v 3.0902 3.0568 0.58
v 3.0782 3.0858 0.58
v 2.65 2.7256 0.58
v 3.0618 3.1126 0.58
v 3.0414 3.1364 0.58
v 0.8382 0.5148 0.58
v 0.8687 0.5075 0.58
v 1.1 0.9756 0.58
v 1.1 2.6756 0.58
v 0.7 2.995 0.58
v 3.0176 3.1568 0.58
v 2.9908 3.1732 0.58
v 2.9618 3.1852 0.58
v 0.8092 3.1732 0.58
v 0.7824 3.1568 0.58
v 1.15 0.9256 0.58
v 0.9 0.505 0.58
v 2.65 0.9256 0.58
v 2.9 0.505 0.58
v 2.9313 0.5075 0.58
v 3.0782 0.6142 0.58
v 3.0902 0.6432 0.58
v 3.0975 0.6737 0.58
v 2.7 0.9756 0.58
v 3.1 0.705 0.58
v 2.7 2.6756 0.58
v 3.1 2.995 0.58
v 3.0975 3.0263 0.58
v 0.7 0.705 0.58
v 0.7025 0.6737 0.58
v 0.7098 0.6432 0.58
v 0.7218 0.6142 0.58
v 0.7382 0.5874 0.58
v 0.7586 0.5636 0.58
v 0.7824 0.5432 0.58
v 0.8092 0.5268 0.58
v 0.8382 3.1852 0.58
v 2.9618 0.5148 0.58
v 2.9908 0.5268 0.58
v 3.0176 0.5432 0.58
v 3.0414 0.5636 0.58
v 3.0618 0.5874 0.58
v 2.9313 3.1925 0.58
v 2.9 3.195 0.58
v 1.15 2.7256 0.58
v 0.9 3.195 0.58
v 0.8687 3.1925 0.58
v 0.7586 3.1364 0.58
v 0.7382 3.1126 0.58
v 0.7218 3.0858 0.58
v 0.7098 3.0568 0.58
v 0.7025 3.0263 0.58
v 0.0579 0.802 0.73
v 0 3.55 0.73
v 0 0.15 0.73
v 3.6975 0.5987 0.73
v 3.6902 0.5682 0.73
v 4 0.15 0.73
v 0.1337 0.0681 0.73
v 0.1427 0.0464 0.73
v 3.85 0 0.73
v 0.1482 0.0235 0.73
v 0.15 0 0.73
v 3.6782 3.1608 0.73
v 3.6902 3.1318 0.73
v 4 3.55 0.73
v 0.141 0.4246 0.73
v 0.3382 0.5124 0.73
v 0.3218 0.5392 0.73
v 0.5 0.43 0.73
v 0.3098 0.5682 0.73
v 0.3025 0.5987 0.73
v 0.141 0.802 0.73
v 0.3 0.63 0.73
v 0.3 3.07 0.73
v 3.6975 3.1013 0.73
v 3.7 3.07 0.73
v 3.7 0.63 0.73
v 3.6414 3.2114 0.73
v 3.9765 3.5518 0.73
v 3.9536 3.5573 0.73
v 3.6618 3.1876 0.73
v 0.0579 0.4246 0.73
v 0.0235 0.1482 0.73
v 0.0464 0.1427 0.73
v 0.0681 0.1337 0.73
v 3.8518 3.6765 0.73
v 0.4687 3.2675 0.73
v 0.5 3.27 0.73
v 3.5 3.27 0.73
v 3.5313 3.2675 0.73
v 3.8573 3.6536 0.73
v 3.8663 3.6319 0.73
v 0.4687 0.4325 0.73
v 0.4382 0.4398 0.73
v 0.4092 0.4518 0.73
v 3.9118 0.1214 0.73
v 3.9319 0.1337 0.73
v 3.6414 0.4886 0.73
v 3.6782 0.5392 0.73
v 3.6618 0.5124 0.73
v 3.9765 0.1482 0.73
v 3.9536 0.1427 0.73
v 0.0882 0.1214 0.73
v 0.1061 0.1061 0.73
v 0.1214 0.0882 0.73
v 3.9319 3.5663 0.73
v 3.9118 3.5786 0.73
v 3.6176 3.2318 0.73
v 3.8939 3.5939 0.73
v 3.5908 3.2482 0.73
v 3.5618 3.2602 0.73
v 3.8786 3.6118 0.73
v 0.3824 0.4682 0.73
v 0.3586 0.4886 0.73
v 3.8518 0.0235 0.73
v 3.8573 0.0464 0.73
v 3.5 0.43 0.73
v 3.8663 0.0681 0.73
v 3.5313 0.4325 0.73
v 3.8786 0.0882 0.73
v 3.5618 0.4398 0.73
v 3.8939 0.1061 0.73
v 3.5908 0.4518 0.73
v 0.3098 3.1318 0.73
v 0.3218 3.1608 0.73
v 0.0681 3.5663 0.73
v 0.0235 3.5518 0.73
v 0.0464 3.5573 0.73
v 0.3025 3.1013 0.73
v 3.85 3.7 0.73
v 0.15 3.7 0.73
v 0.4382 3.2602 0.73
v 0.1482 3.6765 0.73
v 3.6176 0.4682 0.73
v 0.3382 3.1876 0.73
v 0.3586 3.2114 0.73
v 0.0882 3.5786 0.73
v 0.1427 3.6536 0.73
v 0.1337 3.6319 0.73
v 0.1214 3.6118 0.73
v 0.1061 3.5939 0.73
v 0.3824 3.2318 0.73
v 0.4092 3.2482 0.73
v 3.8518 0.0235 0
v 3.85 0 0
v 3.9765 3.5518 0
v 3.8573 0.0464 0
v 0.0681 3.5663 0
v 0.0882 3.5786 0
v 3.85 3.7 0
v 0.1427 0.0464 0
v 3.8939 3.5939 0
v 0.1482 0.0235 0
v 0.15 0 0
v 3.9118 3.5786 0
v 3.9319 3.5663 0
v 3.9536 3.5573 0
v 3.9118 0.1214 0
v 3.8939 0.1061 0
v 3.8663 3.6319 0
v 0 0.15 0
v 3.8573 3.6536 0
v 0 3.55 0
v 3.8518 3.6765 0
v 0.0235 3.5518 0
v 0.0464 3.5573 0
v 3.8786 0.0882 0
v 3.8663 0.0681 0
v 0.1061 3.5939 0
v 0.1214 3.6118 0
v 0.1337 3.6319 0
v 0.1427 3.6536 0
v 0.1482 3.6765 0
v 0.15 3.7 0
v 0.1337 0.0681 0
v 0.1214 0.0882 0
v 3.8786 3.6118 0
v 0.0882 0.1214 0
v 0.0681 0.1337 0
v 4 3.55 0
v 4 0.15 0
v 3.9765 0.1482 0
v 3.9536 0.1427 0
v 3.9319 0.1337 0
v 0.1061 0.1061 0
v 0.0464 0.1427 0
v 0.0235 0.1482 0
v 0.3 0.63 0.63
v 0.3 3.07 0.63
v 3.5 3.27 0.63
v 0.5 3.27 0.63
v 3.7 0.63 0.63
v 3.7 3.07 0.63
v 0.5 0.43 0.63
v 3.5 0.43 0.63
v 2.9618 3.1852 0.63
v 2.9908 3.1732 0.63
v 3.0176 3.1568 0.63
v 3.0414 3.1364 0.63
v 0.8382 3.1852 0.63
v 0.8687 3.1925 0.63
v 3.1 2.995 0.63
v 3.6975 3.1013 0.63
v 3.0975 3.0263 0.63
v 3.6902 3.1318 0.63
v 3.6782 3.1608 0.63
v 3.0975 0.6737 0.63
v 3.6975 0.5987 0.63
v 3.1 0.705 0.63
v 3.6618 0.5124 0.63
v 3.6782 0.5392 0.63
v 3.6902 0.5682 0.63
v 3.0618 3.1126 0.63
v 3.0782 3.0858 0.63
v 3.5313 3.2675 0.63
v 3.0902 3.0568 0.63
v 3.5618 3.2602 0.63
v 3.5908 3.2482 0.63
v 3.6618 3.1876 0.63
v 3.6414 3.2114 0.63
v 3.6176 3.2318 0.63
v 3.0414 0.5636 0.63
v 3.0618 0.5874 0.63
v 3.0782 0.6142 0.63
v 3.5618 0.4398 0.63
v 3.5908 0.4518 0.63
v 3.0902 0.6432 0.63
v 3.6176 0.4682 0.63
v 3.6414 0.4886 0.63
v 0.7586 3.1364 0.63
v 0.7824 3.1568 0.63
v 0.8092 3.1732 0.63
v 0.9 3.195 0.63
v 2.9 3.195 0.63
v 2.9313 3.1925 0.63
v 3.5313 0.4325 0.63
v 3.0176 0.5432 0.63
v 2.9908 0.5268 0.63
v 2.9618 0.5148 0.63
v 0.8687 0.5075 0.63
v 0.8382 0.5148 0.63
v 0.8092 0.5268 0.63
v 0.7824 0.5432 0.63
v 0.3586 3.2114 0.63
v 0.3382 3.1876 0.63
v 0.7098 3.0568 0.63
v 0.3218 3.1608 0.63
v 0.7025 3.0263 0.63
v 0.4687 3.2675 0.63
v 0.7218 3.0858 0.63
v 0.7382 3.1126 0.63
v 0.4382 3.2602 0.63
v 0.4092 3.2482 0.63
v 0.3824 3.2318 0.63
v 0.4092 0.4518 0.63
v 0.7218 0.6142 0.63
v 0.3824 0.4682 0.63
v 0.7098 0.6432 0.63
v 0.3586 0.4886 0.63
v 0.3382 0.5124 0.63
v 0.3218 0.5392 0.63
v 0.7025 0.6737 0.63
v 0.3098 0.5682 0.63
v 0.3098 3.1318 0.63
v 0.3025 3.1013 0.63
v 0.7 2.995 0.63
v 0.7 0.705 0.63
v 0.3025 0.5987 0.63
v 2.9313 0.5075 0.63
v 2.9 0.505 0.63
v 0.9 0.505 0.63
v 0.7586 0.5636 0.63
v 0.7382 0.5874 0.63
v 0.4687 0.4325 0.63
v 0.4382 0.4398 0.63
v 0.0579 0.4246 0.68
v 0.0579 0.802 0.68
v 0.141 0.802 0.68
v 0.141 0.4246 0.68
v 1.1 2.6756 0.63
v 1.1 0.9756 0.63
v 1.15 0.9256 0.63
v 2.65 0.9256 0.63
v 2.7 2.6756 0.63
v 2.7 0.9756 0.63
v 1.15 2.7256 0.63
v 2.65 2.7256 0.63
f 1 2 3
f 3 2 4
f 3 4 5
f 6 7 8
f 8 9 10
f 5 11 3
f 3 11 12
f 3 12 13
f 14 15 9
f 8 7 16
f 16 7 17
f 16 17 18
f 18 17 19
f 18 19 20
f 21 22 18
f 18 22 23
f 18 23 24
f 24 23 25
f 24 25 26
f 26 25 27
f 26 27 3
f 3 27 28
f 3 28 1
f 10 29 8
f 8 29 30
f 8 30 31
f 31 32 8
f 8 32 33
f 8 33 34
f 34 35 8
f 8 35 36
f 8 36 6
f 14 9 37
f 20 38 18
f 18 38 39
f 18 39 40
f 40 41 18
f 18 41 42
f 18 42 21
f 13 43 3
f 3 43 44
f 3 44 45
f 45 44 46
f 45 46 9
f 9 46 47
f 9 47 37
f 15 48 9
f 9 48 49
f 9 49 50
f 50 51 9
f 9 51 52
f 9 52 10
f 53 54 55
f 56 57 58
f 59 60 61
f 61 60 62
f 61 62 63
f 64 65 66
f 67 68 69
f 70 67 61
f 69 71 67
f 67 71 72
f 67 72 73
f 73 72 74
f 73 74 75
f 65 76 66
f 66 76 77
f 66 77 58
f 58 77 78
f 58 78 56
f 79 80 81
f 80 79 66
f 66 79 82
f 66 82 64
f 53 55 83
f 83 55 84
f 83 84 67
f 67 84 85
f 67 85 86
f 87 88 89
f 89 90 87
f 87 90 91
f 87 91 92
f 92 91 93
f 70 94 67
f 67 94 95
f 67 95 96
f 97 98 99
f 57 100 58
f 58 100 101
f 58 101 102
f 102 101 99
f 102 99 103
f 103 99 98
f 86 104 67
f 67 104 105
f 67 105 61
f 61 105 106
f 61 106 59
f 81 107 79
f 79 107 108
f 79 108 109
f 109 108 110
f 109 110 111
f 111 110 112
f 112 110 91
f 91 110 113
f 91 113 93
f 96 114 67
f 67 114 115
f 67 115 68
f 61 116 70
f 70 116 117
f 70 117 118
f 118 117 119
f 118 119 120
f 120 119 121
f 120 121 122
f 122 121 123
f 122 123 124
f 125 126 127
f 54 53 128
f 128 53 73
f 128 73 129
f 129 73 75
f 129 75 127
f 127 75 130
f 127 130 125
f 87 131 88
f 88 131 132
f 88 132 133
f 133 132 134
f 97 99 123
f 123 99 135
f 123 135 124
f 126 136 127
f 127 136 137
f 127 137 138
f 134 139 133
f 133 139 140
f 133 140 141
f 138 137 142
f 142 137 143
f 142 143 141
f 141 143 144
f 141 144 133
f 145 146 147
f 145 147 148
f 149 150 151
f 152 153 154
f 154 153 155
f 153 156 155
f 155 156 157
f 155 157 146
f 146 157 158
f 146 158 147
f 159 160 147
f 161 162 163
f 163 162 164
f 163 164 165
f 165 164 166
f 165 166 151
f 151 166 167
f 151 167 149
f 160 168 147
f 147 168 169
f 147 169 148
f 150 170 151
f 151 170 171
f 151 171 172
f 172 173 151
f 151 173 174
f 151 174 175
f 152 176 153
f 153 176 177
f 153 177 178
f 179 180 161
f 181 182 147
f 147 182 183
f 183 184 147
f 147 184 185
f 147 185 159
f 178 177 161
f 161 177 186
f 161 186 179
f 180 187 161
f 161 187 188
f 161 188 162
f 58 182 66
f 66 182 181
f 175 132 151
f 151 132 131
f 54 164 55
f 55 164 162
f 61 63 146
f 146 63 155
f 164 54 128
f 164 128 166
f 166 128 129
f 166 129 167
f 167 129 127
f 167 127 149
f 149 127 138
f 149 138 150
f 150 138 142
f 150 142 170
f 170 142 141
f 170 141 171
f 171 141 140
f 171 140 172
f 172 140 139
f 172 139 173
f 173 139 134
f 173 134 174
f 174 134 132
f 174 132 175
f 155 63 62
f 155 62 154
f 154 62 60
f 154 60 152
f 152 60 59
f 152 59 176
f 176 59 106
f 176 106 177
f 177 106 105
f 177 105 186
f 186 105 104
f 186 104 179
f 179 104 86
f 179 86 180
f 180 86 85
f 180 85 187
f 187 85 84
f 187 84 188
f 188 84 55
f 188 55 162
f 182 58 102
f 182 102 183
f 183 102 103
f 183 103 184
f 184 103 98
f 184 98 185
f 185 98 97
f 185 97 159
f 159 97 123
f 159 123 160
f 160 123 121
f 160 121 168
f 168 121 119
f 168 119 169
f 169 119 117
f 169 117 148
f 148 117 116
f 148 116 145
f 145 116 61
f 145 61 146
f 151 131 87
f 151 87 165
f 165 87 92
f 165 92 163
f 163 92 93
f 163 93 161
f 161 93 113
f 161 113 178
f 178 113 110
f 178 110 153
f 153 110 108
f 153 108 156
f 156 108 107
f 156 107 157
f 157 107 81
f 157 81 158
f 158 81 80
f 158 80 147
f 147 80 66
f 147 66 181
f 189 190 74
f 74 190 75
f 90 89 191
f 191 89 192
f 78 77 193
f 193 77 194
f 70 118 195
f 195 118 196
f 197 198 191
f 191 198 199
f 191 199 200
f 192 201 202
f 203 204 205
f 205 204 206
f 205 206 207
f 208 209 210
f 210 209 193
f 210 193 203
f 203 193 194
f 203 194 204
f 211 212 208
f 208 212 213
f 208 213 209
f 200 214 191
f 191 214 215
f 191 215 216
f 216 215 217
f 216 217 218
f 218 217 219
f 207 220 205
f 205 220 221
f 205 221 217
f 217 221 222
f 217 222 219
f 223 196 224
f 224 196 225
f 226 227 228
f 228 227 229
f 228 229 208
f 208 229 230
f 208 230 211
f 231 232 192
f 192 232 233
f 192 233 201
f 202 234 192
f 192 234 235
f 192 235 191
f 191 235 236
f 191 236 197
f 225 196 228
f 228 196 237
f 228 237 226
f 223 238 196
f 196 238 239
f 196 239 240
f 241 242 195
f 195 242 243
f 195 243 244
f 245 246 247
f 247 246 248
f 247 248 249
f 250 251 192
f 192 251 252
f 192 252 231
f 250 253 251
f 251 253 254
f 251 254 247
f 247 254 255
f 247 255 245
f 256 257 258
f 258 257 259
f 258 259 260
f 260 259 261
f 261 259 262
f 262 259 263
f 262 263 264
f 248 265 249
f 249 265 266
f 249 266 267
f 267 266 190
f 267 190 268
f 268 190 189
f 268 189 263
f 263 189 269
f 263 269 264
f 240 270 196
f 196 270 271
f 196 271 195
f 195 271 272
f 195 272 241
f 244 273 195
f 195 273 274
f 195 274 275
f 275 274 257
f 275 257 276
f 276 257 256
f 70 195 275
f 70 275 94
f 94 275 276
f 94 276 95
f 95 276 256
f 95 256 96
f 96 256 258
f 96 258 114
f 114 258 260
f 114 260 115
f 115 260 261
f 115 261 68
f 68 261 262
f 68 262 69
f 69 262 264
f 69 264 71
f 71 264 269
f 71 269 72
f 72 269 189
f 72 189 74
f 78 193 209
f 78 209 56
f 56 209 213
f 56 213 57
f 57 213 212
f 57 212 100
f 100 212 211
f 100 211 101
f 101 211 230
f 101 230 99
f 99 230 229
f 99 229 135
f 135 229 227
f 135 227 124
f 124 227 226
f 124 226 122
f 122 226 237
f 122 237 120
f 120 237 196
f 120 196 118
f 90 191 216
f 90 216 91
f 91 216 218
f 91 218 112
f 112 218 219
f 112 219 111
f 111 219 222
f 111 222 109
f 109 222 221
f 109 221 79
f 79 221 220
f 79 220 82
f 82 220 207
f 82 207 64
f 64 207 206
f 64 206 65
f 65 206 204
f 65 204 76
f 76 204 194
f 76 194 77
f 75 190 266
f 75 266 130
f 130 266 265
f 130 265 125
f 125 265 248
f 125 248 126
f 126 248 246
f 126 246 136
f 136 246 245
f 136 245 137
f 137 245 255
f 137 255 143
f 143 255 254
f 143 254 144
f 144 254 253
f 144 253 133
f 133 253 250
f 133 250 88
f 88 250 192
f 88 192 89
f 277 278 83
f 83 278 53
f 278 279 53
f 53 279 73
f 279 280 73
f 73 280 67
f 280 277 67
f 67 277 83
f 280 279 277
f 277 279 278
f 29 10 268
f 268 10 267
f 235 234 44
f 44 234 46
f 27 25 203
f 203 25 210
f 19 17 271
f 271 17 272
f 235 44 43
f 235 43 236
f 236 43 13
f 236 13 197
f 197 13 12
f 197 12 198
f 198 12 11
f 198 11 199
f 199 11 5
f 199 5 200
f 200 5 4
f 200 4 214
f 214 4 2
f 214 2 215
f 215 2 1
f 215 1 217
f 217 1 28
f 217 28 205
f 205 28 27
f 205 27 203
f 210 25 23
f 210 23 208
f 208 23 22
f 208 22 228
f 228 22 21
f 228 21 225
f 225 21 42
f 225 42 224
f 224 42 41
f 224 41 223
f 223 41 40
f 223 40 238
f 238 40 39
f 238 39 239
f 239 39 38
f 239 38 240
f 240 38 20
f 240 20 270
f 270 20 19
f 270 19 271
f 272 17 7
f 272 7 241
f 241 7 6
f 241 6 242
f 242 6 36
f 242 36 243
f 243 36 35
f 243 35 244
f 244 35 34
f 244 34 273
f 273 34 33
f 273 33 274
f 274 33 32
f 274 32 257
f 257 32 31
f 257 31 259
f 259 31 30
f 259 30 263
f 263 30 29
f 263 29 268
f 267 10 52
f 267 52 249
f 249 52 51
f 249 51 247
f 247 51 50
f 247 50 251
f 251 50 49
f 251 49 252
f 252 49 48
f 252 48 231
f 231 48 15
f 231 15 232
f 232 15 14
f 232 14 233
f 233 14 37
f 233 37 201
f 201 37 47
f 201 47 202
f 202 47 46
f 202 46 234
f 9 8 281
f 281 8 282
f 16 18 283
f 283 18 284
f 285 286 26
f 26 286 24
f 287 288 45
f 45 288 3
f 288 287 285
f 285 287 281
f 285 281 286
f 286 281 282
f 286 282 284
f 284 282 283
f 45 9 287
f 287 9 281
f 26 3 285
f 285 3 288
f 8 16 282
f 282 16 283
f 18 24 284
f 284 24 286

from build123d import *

# Parameters (mm, degrees)
SKETCH1_W            = 4
SKETCH1_H            = 3.7
BOSS_EXTRUDE1_DEPTH  = 0.73
CUT_EXTRUDE1_DEPTH   = 0.73
MIRROR2_COPY_1_DEPTH = 0.73
SKETCH3_W            = 3.4
SKETCH3_H            = 2.84
CUT_EXTRUDE2_DEPTH   = 0.1
FILLET1_R            = 0.2
SKETCH4_W            = 0.083030479
SKETCH4_H            = 0.377411269
CUT_EXTRUDE3_DEPTH   = 0.05
SKETCH6_W            = 2.4
SKETCH6_H            = 2.69
CUT_EXTRUDE4_DEPTH   = 0.05
FILLET2_R            = 0.2
SKETCH7_W            = 1.6
SKETCH7_H            = 1.8
BOSS_EXTRUDE2_DEPTH  = 0.05
CHAMFER1_SIZE        = 0.05


with BuildPart() as part:
    # Sketch1 → Boss-Extrude1 (new body)
    with BuildSketch(Plane.XY):
        with Locations((2, 1.85)):
            Rectangle(SKETCH1_W, SKETCH1_H)
    extrude(amount=BOSS_EXTRUDE1_DEPTH)

    # Sketch2 → Cut-Extrude1 (cut)
    with BuildSketch(Plane.XY.offset(0.73)):
        with BuildLine():
            Line((0.15, 3.7), (0, 3.7))
            Line((0, 3.7), (0, 3.55))
            ThreePointArc((0, 3.55), (0.106066017, 3.593933983), (0.15, 3.7))
        make_face()
    cut_extrude1 = extrude(amount=-CUT_EXTRUDE1_DEPTH, mode=Mode.SUBTRACT)

    # Mirror1: Cut-Extrude1 across plane
    add(cut_extrude1.mirror(Plane(origin=(0, 1.85, 0), x_dir=(0, 0, 1), z_dir=(0, -1, 0))), mode=Mode.SUBTRACT)

    # Mirror2: Cut-Extrude1 across plane
    add(cut_extrude1.mirror(Plane.ZY.offset(-2)), mode=Mode.SUBTRACT)

    # Mirror2 copy 1 sketch → Mirror2 copy 1 (cut)
    with BuildSketch(Plane(origin=(4, 3.7, 0.73), x_dir=(-1, 0, 0), z_dir=(0, 0, 1))):
        with BuildLine():
            Line((0.15, 3.7), (0, 3.7))
            Line((0, 3.7), (0, 3.55))
            ThreePointArc((0, 3.55), (0.106066017, 3.593933983), (0.15, 3.7))
        make_face()
    extrude(amount=-MIRROR2_COPY_1_DEPTH, mode=Mode.SUBTRACT)

    # Sketch3 → Cut-Extrude2 (cut)
    with BuildSketch(Plane.XY.offset(0.73)):
        with Locations((2, 1.85)):
            Rectangle(SKETCH3_W, SKETCH3_H)
    extrude(amount=-CUT_EXTRUDE2_DEPTH, mode=Mode.SUBTRACT)

    # Fillet1
    fillet1_edges = [part.edges().sort_by_distance(p)[0] for p in [
        (0.3, 0.43, 0.68),
        (0.3, 3.27, 0.68),
        (3.7, 3.27, 0.68),
        (3.7, 0.43, 0.68),
    ]]
    fillet(fillet1_edges, radius=FILLET1_R)

    # Sketch4 → Cut-Extrude3 (cut)
    with BuildSketch(Plane.XY.offset(0.73)):
        with Locations((0.099459458, 0.613340546)):
            Rectangle(SKETCH4_W, SKETCH4_H)
    extrude(amount=-CUT_EXTRUDE3_DEPTH, mode=Mode.SUBTRACT)

    # Sketch6 → Cut-Extrude4 (cut)
    with BuildSketch(Plane.XY.offset(0.63)):
        with Locations((1.9, 1.85)):
            Rectangle(SKETCH6_W, SKETCH6_H)
    extrude(amount=-CUT_EXTRUDE4_DEPTH, mode=Mode.SUBTRACT)

    # Fillet2
    fillet2_edges = [part.edges().sort_by_distance(p)[0] for p in [
        (0.7, 0.505, 0.605),
        (0.7, 3.195, 0.605),
        (3.1, 3.195, 0.605),
        (3.1, 0.505, 0.605),
    ]]
    fillet(fillet2_edges, radius=FILLET2_R)

    # Sketch7 → Boss-Extrude2 (add)
    with BuildSketch(Plane.XY.offset(0.58)):
        with Locations((1.9, 1.825640605)):
            Rectangle(SKETCH7_W, SKETCH7_H)
    extrude(amount=BOSS_EXTRUDE2_DEPTH)

    # Chamfer1
    chamfer1_edges = [part.edges().sort_by_distance(p)[0] for p in [
        (1.1, 2.725640605, 0.605),
        (1.1, 0.925640605, 0.605),
        (2.7, 0.925640605, 0.605),
        (2.7, 2.725640605, 0.605),
    ]]
    chamfer(chamfer1_edges, length=CHAMFER1_SIZE)


solid = part.part
